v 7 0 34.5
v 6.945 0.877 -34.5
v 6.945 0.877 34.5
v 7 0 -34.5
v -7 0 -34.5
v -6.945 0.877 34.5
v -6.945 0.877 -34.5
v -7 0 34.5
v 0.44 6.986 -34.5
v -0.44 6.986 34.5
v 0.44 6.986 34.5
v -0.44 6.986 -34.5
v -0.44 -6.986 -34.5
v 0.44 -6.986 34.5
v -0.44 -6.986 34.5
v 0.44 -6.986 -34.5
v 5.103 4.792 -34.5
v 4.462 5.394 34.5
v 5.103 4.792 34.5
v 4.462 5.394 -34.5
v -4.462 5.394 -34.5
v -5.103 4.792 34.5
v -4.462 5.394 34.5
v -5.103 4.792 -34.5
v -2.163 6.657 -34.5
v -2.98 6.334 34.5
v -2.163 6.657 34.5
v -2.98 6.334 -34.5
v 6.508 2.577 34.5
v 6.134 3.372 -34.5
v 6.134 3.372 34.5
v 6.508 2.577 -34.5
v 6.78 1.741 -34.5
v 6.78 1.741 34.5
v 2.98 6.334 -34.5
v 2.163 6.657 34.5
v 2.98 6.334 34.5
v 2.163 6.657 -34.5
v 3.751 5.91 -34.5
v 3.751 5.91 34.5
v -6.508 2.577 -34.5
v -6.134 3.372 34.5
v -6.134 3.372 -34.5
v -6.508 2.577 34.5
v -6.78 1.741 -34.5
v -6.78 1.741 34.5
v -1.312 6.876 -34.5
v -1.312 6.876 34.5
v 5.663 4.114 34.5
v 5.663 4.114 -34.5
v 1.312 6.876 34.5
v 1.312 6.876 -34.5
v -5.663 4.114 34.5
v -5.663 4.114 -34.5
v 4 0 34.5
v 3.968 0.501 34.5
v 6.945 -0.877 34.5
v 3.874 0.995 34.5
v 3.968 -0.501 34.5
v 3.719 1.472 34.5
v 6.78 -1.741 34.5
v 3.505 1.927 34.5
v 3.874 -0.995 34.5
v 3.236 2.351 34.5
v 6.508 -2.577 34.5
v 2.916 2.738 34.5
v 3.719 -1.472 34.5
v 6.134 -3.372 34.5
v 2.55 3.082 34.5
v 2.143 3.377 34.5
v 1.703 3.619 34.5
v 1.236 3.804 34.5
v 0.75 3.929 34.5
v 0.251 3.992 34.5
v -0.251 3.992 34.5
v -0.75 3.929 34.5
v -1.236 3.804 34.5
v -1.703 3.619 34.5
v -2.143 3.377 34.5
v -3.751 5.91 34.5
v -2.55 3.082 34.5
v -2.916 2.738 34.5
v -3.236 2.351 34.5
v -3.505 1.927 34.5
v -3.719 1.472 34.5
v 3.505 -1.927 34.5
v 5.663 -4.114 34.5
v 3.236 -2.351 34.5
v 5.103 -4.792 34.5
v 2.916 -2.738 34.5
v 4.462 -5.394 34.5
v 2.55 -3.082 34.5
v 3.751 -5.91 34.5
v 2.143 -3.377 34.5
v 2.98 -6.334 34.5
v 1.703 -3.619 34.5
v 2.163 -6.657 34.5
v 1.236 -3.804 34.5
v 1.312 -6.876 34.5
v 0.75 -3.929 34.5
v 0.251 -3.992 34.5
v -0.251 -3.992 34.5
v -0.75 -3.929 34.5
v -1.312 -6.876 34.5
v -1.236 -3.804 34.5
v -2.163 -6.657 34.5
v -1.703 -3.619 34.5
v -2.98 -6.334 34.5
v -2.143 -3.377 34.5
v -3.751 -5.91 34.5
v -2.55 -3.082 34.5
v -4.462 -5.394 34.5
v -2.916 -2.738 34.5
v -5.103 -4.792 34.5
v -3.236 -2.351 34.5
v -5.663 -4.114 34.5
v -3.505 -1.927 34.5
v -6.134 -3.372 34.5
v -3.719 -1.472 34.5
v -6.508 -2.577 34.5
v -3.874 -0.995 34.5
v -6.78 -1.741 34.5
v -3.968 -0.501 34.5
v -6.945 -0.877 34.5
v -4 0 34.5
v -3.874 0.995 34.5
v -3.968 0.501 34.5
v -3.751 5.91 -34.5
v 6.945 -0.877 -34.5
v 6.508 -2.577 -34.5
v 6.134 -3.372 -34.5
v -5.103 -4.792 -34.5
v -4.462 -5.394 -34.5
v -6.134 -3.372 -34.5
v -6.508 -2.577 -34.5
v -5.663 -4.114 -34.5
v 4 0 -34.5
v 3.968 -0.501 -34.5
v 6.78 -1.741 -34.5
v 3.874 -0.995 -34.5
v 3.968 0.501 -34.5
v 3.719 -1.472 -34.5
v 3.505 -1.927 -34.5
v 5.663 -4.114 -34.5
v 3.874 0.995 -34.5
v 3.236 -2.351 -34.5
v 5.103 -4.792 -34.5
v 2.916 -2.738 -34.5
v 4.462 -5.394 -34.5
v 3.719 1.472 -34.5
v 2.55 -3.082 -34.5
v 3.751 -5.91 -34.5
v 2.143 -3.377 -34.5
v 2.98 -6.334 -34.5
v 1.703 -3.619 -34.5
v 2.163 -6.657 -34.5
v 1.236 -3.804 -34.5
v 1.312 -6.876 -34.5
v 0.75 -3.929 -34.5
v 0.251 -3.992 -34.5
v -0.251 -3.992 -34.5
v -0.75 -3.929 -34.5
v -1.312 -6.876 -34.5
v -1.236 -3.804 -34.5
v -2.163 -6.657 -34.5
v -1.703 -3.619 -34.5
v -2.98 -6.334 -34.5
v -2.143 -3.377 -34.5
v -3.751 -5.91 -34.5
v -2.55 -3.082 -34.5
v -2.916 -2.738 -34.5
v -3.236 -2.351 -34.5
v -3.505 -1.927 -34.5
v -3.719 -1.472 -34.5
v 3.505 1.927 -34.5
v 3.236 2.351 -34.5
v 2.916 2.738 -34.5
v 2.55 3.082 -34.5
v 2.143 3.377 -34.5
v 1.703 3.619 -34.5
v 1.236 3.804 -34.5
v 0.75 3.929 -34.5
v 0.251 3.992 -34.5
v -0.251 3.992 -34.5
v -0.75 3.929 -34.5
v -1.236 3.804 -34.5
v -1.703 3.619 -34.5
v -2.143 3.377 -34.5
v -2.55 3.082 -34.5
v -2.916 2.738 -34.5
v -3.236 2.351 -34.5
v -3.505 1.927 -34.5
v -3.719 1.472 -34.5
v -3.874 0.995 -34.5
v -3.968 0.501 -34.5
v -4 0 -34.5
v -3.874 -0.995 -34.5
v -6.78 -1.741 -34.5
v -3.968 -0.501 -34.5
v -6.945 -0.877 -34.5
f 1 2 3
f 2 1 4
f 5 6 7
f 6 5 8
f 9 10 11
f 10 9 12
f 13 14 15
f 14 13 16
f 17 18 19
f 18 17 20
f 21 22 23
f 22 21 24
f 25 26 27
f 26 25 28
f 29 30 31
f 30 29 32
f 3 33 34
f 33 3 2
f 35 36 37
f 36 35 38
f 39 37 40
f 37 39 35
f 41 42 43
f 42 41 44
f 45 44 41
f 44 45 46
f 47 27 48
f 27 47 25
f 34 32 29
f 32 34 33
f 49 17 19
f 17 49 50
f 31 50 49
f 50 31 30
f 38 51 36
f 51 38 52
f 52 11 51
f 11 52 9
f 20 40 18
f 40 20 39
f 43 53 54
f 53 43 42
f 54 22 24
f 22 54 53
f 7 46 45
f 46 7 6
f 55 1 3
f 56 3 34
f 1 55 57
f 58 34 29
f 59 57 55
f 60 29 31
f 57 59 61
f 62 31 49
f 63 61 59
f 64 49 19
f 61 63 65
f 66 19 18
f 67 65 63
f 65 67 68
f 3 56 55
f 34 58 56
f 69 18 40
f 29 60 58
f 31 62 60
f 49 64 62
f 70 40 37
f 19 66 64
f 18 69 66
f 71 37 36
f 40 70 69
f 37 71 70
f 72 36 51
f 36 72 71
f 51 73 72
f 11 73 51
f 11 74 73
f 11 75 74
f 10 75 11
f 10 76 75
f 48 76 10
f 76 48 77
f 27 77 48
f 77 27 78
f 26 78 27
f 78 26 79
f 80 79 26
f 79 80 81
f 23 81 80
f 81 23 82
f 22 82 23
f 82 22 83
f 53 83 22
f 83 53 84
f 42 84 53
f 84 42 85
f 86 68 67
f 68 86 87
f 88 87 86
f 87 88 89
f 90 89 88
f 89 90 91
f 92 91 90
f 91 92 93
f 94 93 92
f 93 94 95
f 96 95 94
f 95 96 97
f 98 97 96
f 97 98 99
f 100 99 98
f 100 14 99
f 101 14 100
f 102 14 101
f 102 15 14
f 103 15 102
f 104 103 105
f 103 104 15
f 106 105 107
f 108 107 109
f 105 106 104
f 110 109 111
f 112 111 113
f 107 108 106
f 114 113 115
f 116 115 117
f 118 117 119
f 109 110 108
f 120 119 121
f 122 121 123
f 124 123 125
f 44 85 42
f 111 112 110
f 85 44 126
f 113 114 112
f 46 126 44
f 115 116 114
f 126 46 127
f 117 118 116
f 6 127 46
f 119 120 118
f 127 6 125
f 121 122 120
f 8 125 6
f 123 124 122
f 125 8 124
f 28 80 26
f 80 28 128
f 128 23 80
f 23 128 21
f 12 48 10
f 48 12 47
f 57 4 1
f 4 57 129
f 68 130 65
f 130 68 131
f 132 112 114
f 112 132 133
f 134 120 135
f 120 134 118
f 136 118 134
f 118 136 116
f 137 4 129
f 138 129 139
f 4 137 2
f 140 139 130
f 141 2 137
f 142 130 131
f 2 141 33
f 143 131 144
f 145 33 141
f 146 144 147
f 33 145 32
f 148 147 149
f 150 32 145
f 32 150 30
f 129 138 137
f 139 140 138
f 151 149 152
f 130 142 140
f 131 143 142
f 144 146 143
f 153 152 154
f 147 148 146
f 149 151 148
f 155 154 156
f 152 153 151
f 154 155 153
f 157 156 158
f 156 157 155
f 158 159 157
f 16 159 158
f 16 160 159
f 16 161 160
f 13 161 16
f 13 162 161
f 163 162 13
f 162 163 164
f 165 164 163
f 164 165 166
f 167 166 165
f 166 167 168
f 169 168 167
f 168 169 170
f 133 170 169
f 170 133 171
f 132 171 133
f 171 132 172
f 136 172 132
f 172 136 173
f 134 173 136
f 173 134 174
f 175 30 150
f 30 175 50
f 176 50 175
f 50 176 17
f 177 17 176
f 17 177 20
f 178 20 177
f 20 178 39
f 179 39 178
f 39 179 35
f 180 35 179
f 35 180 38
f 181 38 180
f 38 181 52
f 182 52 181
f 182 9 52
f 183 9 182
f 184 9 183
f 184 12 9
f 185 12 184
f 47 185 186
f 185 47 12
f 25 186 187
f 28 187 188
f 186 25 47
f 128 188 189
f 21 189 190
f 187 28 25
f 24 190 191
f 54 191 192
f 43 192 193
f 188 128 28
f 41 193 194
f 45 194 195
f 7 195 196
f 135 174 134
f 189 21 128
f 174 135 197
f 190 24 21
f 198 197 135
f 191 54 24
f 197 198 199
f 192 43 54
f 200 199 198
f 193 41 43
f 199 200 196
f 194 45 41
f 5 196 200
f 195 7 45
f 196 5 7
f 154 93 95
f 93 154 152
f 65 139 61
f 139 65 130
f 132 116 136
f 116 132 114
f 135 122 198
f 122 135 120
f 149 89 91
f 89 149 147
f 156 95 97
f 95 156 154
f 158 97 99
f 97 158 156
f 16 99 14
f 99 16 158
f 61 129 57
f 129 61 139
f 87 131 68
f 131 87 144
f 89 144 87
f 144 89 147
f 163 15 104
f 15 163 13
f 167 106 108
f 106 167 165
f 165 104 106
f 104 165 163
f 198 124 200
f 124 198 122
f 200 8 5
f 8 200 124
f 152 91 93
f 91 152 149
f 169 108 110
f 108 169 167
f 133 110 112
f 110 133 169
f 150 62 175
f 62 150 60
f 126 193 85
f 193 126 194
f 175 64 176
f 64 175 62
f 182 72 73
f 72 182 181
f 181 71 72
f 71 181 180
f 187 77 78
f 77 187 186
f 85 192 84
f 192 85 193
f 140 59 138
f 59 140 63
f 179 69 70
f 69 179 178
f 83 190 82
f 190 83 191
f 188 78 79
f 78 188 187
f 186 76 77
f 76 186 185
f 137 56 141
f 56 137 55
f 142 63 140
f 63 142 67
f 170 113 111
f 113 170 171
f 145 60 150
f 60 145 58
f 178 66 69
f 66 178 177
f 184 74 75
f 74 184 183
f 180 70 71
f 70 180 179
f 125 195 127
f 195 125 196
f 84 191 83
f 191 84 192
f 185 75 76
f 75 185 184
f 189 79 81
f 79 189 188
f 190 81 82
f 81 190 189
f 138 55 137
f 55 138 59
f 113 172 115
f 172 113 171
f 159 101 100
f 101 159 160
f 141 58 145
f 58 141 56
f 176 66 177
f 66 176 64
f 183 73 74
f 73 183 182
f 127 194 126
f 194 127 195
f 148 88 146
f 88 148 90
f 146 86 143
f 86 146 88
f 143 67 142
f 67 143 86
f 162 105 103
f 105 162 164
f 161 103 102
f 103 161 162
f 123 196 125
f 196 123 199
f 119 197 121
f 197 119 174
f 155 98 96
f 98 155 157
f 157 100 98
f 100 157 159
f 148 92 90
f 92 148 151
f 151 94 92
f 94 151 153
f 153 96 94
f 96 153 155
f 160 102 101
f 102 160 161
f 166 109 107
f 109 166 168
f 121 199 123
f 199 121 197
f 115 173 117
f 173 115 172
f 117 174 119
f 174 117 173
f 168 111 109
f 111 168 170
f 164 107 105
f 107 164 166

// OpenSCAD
$fn = 50;


difference() {
	union() {
		translate(v = [0, 0, -34.5000000000]) {
			cylinder(h = 69, r = 7.0000000000);
		}
	}
	union() {
		translate(v = [0, 0, -100.0000000000]) {
			cylinder(h = 200, r = 4);
		}
	}
}
